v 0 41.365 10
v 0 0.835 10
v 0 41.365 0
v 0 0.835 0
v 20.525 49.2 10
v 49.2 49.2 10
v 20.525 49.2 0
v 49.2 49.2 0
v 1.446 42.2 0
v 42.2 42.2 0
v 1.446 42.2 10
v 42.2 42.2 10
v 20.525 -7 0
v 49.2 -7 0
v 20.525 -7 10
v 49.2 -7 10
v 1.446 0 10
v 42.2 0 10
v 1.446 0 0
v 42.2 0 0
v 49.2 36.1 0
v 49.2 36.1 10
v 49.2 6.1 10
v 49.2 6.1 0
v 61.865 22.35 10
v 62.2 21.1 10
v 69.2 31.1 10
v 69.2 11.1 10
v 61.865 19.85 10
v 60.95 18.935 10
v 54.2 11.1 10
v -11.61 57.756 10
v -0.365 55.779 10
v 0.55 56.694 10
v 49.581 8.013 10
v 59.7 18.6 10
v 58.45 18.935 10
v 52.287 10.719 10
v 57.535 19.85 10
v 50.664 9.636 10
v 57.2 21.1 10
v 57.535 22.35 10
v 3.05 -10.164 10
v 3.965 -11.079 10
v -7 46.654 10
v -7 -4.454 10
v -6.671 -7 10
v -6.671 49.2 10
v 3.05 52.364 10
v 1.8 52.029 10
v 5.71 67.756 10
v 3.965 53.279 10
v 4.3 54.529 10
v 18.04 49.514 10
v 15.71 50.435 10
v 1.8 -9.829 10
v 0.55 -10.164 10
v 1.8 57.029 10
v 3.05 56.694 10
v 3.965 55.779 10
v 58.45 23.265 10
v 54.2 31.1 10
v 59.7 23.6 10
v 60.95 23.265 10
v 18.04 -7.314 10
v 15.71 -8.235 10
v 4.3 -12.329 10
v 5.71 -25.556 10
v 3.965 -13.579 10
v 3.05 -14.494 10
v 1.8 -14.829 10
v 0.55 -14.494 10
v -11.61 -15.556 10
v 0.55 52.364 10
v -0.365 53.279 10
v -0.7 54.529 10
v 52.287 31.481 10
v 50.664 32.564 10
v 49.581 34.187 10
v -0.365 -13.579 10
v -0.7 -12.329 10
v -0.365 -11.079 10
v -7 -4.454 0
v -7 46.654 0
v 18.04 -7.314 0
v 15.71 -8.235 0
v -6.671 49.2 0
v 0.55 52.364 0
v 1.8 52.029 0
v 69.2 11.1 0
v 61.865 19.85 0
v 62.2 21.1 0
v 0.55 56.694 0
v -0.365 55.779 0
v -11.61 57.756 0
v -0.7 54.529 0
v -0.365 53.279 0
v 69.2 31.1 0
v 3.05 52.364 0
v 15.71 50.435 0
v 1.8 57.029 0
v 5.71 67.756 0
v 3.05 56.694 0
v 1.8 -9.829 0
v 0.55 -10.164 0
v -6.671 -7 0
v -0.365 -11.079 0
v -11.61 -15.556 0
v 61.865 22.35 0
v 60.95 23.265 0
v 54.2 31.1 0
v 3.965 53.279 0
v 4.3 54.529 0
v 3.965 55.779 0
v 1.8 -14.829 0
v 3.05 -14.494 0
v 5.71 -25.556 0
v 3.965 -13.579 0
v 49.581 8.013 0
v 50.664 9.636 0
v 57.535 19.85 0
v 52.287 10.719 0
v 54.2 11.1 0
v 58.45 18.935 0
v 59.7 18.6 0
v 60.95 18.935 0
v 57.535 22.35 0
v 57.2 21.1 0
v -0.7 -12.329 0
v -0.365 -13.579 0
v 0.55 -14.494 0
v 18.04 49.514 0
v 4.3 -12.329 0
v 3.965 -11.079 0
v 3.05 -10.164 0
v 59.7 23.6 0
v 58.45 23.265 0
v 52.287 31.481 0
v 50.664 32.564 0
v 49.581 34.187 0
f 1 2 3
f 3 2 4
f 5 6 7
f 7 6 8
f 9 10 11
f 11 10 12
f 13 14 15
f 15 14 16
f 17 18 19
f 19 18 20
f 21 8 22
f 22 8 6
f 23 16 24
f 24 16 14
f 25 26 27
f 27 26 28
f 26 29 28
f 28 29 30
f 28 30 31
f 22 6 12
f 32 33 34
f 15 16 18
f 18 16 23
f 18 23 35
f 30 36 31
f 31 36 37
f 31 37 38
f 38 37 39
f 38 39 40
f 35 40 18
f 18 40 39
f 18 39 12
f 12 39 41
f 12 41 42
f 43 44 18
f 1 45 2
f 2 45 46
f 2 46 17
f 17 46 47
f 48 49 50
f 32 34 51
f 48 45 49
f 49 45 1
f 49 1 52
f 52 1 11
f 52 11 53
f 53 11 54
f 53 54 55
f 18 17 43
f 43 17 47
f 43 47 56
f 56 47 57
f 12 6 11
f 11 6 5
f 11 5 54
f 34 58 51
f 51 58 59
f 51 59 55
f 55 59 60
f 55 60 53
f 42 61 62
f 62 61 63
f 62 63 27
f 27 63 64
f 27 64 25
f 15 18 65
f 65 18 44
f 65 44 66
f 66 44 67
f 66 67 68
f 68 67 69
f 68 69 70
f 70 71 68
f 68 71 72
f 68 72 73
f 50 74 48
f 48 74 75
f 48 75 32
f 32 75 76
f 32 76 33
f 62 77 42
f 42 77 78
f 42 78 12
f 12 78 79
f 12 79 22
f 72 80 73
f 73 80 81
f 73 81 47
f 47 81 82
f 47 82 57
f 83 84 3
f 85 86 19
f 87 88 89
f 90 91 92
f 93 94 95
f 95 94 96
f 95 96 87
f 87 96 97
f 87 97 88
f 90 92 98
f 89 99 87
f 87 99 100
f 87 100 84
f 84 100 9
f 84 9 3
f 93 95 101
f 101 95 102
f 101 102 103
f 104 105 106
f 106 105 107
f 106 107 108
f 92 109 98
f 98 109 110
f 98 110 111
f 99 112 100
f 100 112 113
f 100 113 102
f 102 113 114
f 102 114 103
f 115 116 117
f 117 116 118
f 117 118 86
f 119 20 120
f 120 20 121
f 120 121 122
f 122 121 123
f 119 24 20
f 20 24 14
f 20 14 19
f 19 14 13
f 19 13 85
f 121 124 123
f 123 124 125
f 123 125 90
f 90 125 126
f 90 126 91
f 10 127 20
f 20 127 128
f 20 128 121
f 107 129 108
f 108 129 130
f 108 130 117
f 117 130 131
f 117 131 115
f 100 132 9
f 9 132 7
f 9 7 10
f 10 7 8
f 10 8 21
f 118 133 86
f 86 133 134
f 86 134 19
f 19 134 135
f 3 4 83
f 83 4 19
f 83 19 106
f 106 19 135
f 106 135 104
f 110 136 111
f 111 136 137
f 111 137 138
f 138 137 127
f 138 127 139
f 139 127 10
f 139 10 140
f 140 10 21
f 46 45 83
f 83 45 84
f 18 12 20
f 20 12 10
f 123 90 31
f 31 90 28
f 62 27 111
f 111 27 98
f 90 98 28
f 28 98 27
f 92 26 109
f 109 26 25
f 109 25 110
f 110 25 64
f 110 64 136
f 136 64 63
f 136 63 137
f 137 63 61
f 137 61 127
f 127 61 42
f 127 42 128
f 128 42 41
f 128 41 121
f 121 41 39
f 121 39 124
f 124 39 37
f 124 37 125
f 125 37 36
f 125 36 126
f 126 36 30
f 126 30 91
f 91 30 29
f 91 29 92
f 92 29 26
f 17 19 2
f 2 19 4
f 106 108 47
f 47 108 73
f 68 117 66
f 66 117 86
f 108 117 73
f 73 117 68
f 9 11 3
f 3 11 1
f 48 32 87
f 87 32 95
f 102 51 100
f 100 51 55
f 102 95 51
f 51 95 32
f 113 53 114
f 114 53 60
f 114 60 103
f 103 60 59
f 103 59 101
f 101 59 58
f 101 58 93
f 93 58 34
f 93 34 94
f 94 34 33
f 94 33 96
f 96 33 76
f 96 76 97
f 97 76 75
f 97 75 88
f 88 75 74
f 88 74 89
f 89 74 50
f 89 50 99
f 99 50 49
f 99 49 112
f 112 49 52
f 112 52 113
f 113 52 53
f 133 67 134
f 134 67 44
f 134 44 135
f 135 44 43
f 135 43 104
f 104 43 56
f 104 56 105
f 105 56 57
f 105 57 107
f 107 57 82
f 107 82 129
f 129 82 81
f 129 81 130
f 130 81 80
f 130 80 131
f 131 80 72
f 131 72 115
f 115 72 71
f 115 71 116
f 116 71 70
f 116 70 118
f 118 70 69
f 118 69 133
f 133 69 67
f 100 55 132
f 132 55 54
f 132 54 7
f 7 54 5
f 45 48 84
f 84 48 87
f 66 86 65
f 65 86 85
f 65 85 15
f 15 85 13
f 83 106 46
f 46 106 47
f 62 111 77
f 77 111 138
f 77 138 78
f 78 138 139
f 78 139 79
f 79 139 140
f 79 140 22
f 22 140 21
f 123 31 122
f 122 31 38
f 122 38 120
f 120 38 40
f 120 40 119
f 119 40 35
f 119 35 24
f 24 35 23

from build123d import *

# Parameters (mm, degrees)
SKIZZE2_W                       = 56.2
SKIZZE2_H                       = 56.2
SKIZZE2_W_2                     = 42.2
SKIZZE2_H_2                     = 42.2
AUFSATZ_LINEAR_AUSTRAGEN1_DEPTH = 10
SKIZZE3_W                       = 10
SKIZZE3_H                       = 20
AUFSATZ_LINEAR_AUSTRAGEN2_DEPTH = 20
SKIZZE4_R                       = 2.5
SCHNITT_LINEAR_AUSTRAGEN1_DEPTH = 27
KREISMUSTER1_COUNT              = 3
KREISMUSTER2_COUNT              = 3
VERRUNDUNG1_R                   = 10
VERRUNDUNG2_R                   = 10
VERRUNDUNG3_R                   = 10
VERRUNDUNG4_R                   = 5


with BuildPart() as part:
    # Skizze2 → Aufsatz-Linear austragen1 (new body)
    with BuildSketch(Plane.XY):
        with Locations((21.1, 21.1)):
            Rectangle(SKIZZE2_W, SKIZZE2_H)
        with Locations((21.1, 21.1)):
            Rectangle(SKIZZE2_W_2, SKIZZE2_H_2, mode=Mode.SUBTRACT)
    extrude(amount=AUFSATZ_LINEAR_AUSTRAGEN1_DEPTH)

    # Skizze3 → Aufsatz-Linear austragen2 (add)
    with BuildSketch(Plane(origin=(49.2, 0, 0), x_dir=(0, 0, -1), z_dir=(1, 0, 0))):
        with Locations((-5, 21.1)):
            Rectangle(SKIZZE3_W, SKIZZE3_H)
    aufsatz_linear_austragen2 = extrude(amount=AUFSATZ_LINEAR_AUSTRAGEN2_DEPTH)

    # Skizze4 → Schnitt-Linear austragen1 (cut)
    with BuildSketch(Plane.XY.offset(10)):
        with Locations((59.7, 21.1)):
            Circle(SKIZZE4_R)
    schnitt_linear_austragen1 = extrude(amount=-SCHNITT_LINEAR_AUSTRAGEN1_DEPTH, mode=Mode.SUBTRACT)

    # Kreismuster1: Aufsatz-Linear austragen2 ×3 about axis
    kreismuster1_axis = Axis((21.1, 21.1, 0), (0, 0, 1))
    for i in range(1, KREISMUSTER1_COUNT):
        add(aufsatz_linear_austragen2.rotate(kreismuster1_axis, i * 360 / KREISMUSTER1_COUNT))

    # Kreismuster2: Schnitt-Linear austragen1 ×3 about axis
    kreismuster2_axis = Axis((21.1, 21.1, 0), (0, 0, 1))
    for i in range(1, KREISMUSTER2_COUNT):
        add(schnitt_linear_austragen1.rotate(kreismuster2_axis, i * 360 / KREISMUSTER2_COUNT), mode=Mode.SUBTRACT)

    # Verrundung1
    # the kernel refuses this fillet: 10 mm, written as the material it adds along each edge
    with BuildSketch(Plane(origin=(13.570627693, 49.2, 10), x_dir=(0.866025403783509, 0.5000000000016102, 0), z_dir=(0, 0, -1))) as verrundung1_piece_1:
        with BuildLine():
            CenterArc((11.022527997, -5.183145878), VERRUNDUNG1_R, 120, 28.780734866)
            Line((6.022527997, 3.47710816), (0, 0))
            Line((0, 0), (2.470627693, 0))
        make_face()
    extrude(amount=10)

    # Verrundung2
    # the kernel refuses this fillet: 10 mm, written as the material it takes off along each edge
    with BuildSketch(Plane(origin=(-7, 49.2, -6.36420772), x_dir=(0, -1, 0), z_dir=(0, 0, 1))) as verrundung2_piece_1:
        with BuildLine():
            CenterArc((2.545683088, 10), VERRUNDUNG2_R, 255.251993066, 14.748006934)
            Line((0, 0.329452052), (-0.050913662, 0.136041093))
            ThreePointArc((-0.050913662, 0.136041093), (-0.2, 0.164726026), (-0.2, 0))
            Line((-0.2, 0), (0, -0.2))
            Line((0, -0.2), (2.545683088, -0.2))
            Line((2.545683088, -0.2), (2.545683088, 0))
        make_face()
    extrude(amount=22.72841544, mode=Mode.SUBTRACT)

    # Verrundung3
    # the kernel refuses this fillet: 10 mm, written as the material it adds along each edge
    with BuildSketch(Plane(origin=(13.570627693, -7, 0), x_dir=(1, 0, 0), z_dir=(0, 0, 1))) as verrundung3_piece_1:
        with BuildLine():
            CenterArc((6.95421632, -10), VERRUNDUNG3_R, 90, 28.780734866)
            Line((2.139626345, -1.235313846), (0, 0))
            Line((0, 0), (6.95421632, 0))
        make_face()
    extrude(amount=10)
    # the kernel refuses this fillet: 10 mm, written as the material it takes off along each edge
    with BuildSketch(Plane(origin=(-7, -7, -6.36420772), x_dir=(1, 0, 0), z_dir=(0, 0, 1))) as verrundung3_2_piece_1:
        with BuildLine():
            CenterArc((10, 2.545683088), VERRUNDUNG3_R, 180, 14.748006934)
            Line((0, 2.545683088), (0, 0))
            Line((0, 0), (0.329452052, 0))
        make_face()
    extrude(amount=22.72841544, mode=Mode.SUBTRACT)

    # Verrundung4
    verrundung4_edges = [part.edges().sort_by_distance(p)[0] for p in [
        (49.2, 11.1, 5),
        (49.2, 31.1, 5),
    ]]
    fillet(verrundung4_edges, radius=VERRUNDUNG4_R)


solid = part.part
